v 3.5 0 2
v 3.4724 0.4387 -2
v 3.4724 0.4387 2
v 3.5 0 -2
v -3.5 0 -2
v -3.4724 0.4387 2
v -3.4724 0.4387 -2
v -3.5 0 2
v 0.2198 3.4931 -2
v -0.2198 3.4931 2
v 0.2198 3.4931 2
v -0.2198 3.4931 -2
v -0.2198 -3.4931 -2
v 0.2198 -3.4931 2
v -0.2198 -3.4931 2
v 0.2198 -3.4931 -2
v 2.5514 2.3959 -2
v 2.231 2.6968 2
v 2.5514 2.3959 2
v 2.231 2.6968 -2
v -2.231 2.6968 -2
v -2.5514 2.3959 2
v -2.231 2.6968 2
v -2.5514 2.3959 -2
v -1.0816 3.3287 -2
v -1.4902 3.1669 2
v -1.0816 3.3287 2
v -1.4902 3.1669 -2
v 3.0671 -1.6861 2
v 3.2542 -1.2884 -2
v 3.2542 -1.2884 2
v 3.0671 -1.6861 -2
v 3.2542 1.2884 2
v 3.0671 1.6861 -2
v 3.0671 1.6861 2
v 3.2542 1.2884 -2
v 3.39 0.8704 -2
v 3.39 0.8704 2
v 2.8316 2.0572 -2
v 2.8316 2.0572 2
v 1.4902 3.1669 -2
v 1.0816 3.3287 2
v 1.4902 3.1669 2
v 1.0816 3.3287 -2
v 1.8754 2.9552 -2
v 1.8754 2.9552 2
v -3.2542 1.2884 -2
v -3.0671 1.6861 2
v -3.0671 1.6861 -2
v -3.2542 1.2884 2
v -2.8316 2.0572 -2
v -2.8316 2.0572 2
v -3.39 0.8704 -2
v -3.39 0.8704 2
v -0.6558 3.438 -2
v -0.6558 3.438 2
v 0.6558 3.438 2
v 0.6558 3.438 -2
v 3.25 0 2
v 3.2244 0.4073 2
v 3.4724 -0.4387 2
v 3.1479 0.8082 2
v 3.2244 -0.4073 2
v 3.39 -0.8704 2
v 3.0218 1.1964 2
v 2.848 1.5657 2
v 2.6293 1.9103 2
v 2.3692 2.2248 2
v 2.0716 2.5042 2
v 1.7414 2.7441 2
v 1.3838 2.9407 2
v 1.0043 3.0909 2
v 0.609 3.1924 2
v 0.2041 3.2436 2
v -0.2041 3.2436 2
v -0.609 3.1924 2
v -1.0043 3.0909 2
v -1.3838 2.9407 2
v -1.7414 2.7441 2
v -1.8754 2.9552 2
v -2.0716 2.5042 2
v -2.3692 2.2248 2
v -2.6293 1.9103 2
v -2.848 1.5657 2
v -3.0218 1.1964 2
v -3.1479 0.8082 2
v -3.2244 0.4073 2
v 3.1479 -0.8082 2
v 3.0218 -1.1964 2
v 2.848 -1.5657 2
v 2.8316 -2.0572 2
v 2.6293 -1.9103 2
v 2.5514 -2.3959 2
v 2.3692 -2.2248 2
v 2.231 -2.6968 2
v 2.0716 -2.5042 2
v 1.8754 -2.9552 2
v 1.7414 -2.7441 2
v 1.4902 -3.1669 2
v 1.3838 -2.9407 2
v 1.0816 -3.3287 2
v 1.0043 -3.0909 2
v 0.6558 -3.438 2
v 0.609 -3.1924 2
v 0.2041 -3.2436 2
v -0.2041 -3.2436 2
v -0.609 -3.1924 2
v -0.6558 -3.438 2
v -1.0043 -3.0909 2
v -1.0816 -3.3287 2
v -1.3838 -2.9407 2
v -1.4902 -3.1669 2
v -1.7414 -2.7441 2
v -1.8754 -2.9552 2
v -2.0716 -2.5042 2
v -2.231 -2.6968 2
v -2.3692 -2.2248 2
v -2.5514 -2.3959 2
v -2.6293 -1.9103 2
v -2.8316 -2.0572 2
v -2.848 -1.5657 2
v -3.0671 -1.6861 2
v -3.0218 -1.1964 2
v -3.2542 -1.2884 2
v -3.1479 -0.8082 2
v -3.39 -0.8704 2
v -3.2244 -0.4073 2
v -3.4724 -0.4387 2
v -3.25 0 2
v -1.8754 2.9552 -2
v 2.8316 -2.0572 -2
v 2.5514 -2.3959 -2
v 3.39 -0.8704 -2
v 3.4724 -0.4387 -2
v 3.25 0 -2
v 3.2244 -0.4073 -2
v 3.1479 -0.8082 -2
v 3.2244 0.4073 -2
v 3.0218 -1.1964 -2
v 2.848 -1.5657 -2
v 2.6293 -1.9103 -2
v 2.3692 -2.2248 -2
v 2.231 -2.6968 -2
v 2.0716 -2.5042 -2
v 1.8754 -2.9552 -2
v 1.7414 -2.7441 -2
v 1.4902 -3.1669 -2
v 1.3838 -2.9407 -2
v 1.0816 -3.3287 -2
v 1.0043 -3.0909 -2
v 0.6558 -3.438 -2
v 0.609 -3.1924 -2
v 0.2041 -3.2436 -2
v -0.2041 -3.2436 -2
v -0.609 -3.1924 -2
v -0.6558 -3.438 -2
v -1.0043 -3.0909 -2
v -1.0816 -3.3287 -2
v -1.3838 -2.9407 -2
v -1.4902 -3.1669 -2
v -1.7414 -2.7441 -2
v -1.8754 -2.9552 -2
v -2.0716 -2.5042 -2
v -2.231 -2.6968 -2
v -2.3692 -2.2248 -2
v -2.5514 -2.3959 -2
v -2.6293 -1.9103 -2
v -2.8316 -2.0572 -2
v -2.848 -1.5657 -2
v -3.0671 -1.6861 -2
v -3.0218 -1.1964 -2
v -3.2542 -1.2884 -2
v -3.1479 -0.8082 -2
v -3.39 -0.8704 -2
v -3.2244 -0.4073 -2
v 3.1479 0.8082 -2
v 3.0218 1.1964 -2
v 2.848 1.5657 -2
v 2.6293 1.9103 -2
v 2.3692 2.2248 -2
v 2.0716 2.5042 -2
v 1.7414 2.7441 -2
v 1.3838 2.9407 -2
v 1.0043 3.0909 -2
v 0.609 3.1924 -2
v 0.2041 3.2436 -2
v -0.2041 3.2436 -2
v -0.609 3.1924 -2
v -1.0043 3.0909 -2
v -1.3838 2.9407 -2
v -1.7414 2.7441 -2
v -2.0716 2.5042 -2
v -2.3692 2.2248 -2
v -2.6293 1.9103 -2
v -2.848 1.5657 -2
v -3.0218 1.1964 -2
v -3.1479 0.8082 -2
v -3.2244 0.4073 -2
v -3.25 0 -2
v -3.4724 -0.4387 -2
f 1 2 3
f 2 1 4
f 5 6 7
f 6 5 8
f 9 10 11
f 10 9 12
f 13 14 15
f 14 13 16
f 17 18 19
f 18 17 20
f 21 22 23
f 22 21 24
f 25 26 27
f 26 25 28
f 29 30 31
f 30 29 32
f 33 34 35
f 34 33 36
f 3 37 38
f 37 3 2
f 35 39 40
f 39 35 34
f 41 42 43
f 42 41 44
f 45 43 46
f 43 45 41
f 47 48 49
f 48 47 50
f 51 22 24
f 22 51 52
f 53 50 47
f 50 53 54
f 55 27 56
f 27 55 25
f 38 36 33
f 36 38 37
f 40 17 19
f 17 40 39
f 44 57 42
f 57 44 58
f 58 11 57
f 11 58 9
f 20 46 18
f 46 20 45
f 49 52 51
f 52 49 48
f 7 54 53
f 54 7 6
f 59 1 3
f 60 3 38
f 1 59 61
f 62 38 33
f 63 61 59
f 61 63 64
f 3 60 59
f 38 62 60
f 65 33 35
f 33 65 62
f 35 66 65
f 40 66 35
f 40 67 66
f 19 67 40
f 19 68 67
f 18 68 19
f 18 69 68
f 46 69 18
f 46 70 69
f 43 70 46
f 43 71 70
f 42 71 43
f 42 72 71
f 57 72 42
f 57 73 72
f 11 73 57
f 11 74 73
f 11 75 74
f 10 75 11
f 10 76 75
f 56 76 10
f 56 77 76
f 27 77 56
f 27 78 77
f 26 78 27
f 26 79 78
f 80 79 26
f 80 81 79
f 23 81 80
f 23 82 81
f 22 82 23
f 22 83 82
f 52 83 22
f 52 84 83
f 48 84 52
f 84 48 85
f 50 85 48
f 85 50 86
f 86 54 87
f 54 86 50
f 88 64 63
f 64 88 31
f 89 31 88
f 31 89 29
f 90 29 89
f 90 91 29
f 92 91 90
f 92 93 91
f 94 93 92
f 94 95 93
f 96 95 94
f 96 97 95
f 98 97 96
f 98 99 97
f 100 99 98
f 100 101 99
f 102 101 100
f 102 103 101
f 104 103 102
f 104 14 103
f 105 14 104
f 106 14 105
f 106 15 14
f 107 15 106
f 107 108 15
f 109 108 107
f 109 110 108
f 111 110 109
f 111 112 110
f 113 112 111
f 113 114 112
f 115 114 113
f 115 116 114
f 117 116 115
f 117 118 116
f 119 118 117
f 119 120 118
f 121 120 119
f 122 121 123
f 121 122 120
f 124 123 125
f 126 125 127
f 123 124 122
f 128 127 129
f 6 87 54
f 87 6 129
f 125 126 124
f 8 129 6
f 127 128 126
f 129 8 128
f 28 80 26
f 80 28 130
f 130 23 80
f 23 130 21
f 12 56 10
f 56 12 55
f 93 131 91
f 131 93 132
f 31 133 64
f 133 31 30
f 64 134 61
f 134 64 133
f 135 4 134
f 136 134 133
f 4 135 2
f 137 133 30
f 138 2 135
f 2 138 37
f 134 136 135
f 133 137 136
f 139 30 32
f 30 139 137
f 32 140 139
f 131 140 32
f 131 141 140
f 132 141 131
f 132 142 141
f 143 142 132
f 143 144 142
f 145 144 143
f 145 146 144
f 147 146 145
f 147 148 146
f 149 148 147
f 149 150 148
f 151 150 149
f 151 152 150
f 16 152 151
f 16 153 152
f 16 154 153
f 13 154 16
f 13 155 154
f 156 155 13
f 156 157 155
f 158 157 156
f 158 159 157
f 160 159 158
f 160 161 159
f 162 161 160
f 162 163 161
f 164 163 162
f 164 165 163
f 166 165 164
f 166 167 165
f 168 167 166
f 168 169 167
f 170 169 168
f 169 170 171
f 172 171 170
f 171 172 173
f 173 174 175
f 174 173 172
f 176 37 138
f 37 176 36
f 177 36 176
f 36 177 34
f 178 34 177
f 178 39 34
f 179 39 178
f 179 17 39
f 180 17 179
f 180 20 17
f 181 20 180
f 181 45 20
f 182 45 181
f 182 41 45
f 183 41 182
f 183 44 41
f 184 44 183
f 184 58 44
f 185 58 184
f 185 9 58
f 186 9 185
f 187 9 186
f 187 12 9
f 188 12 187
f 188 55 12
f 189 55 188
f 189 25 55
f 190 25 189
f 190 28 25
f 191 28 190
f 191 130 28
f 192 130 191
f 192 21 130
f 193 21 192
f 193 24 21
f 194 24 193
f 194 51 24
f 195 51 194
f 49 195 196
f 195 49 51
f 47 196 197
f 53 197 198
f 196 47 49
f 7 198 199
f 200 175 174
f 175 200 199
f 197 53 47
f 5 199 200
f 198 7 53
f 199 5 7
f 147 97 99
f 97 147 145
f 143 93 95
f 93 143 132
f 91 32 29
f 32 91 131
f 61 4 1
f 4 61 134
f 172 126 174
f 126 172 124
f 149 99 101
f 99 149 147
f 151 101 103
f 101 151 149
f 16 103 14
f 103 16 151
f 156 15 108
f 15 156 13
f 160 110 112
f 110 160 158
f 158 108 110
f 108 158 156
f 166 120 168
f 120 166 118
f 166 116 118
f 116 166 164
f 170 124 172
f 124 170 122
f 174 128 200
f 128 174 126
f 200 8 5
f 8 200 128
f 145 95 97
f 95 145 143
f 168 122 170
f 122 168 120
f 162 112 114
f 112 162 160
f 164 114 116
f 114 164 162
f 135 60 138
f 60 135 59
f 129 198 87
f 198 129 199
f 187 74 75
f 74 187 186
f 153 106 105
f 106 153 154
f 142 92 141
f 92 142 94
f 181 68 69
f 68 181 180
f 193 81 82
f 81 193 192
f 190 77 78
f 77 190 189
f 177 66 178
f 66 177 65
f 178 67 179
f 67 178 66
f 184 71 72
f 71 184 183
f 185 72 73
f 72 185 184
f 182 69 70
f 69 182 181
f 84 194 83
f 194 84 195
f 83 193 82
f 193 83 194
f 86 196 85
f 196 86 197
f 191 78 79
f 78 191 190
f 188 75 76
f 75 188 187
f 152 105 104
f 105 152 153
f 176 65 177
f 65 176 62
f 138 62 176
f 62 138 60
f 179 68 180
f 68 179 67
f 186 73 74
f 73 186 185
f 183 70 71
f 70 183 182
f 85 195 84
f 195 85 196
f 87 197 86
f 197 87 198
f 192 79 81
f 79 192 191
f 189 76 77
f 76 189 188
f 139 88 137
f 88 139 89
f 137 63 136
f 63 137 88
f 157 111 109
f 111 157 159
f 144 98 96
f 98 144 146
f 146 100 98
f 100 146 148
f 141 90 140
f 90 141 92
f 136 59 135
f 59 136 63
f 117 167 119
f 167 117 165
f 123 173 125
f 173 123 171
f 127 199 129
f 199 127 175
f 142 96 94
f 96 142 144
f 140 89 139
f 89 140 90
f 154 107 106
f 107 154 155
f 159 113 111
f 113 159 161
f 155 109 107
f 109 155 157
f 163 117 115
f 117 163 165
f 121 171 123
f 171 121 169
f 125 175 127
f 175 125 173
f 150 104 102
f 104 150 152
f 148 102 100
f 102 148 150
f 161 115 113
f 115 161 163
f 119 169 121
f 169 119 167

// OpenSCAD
$fn = 50;


difference() {
	union() {
		translate(v = [0, 0, -2.0000000000]) {
			cylinder(h = 4, r = 3.5000000000);
		}
	}
	union() {
		translate(v = [0, 0, -100.0000000000]) {
			cylinder(h = 200, r = 3.2500000000);
		}
	}
}
